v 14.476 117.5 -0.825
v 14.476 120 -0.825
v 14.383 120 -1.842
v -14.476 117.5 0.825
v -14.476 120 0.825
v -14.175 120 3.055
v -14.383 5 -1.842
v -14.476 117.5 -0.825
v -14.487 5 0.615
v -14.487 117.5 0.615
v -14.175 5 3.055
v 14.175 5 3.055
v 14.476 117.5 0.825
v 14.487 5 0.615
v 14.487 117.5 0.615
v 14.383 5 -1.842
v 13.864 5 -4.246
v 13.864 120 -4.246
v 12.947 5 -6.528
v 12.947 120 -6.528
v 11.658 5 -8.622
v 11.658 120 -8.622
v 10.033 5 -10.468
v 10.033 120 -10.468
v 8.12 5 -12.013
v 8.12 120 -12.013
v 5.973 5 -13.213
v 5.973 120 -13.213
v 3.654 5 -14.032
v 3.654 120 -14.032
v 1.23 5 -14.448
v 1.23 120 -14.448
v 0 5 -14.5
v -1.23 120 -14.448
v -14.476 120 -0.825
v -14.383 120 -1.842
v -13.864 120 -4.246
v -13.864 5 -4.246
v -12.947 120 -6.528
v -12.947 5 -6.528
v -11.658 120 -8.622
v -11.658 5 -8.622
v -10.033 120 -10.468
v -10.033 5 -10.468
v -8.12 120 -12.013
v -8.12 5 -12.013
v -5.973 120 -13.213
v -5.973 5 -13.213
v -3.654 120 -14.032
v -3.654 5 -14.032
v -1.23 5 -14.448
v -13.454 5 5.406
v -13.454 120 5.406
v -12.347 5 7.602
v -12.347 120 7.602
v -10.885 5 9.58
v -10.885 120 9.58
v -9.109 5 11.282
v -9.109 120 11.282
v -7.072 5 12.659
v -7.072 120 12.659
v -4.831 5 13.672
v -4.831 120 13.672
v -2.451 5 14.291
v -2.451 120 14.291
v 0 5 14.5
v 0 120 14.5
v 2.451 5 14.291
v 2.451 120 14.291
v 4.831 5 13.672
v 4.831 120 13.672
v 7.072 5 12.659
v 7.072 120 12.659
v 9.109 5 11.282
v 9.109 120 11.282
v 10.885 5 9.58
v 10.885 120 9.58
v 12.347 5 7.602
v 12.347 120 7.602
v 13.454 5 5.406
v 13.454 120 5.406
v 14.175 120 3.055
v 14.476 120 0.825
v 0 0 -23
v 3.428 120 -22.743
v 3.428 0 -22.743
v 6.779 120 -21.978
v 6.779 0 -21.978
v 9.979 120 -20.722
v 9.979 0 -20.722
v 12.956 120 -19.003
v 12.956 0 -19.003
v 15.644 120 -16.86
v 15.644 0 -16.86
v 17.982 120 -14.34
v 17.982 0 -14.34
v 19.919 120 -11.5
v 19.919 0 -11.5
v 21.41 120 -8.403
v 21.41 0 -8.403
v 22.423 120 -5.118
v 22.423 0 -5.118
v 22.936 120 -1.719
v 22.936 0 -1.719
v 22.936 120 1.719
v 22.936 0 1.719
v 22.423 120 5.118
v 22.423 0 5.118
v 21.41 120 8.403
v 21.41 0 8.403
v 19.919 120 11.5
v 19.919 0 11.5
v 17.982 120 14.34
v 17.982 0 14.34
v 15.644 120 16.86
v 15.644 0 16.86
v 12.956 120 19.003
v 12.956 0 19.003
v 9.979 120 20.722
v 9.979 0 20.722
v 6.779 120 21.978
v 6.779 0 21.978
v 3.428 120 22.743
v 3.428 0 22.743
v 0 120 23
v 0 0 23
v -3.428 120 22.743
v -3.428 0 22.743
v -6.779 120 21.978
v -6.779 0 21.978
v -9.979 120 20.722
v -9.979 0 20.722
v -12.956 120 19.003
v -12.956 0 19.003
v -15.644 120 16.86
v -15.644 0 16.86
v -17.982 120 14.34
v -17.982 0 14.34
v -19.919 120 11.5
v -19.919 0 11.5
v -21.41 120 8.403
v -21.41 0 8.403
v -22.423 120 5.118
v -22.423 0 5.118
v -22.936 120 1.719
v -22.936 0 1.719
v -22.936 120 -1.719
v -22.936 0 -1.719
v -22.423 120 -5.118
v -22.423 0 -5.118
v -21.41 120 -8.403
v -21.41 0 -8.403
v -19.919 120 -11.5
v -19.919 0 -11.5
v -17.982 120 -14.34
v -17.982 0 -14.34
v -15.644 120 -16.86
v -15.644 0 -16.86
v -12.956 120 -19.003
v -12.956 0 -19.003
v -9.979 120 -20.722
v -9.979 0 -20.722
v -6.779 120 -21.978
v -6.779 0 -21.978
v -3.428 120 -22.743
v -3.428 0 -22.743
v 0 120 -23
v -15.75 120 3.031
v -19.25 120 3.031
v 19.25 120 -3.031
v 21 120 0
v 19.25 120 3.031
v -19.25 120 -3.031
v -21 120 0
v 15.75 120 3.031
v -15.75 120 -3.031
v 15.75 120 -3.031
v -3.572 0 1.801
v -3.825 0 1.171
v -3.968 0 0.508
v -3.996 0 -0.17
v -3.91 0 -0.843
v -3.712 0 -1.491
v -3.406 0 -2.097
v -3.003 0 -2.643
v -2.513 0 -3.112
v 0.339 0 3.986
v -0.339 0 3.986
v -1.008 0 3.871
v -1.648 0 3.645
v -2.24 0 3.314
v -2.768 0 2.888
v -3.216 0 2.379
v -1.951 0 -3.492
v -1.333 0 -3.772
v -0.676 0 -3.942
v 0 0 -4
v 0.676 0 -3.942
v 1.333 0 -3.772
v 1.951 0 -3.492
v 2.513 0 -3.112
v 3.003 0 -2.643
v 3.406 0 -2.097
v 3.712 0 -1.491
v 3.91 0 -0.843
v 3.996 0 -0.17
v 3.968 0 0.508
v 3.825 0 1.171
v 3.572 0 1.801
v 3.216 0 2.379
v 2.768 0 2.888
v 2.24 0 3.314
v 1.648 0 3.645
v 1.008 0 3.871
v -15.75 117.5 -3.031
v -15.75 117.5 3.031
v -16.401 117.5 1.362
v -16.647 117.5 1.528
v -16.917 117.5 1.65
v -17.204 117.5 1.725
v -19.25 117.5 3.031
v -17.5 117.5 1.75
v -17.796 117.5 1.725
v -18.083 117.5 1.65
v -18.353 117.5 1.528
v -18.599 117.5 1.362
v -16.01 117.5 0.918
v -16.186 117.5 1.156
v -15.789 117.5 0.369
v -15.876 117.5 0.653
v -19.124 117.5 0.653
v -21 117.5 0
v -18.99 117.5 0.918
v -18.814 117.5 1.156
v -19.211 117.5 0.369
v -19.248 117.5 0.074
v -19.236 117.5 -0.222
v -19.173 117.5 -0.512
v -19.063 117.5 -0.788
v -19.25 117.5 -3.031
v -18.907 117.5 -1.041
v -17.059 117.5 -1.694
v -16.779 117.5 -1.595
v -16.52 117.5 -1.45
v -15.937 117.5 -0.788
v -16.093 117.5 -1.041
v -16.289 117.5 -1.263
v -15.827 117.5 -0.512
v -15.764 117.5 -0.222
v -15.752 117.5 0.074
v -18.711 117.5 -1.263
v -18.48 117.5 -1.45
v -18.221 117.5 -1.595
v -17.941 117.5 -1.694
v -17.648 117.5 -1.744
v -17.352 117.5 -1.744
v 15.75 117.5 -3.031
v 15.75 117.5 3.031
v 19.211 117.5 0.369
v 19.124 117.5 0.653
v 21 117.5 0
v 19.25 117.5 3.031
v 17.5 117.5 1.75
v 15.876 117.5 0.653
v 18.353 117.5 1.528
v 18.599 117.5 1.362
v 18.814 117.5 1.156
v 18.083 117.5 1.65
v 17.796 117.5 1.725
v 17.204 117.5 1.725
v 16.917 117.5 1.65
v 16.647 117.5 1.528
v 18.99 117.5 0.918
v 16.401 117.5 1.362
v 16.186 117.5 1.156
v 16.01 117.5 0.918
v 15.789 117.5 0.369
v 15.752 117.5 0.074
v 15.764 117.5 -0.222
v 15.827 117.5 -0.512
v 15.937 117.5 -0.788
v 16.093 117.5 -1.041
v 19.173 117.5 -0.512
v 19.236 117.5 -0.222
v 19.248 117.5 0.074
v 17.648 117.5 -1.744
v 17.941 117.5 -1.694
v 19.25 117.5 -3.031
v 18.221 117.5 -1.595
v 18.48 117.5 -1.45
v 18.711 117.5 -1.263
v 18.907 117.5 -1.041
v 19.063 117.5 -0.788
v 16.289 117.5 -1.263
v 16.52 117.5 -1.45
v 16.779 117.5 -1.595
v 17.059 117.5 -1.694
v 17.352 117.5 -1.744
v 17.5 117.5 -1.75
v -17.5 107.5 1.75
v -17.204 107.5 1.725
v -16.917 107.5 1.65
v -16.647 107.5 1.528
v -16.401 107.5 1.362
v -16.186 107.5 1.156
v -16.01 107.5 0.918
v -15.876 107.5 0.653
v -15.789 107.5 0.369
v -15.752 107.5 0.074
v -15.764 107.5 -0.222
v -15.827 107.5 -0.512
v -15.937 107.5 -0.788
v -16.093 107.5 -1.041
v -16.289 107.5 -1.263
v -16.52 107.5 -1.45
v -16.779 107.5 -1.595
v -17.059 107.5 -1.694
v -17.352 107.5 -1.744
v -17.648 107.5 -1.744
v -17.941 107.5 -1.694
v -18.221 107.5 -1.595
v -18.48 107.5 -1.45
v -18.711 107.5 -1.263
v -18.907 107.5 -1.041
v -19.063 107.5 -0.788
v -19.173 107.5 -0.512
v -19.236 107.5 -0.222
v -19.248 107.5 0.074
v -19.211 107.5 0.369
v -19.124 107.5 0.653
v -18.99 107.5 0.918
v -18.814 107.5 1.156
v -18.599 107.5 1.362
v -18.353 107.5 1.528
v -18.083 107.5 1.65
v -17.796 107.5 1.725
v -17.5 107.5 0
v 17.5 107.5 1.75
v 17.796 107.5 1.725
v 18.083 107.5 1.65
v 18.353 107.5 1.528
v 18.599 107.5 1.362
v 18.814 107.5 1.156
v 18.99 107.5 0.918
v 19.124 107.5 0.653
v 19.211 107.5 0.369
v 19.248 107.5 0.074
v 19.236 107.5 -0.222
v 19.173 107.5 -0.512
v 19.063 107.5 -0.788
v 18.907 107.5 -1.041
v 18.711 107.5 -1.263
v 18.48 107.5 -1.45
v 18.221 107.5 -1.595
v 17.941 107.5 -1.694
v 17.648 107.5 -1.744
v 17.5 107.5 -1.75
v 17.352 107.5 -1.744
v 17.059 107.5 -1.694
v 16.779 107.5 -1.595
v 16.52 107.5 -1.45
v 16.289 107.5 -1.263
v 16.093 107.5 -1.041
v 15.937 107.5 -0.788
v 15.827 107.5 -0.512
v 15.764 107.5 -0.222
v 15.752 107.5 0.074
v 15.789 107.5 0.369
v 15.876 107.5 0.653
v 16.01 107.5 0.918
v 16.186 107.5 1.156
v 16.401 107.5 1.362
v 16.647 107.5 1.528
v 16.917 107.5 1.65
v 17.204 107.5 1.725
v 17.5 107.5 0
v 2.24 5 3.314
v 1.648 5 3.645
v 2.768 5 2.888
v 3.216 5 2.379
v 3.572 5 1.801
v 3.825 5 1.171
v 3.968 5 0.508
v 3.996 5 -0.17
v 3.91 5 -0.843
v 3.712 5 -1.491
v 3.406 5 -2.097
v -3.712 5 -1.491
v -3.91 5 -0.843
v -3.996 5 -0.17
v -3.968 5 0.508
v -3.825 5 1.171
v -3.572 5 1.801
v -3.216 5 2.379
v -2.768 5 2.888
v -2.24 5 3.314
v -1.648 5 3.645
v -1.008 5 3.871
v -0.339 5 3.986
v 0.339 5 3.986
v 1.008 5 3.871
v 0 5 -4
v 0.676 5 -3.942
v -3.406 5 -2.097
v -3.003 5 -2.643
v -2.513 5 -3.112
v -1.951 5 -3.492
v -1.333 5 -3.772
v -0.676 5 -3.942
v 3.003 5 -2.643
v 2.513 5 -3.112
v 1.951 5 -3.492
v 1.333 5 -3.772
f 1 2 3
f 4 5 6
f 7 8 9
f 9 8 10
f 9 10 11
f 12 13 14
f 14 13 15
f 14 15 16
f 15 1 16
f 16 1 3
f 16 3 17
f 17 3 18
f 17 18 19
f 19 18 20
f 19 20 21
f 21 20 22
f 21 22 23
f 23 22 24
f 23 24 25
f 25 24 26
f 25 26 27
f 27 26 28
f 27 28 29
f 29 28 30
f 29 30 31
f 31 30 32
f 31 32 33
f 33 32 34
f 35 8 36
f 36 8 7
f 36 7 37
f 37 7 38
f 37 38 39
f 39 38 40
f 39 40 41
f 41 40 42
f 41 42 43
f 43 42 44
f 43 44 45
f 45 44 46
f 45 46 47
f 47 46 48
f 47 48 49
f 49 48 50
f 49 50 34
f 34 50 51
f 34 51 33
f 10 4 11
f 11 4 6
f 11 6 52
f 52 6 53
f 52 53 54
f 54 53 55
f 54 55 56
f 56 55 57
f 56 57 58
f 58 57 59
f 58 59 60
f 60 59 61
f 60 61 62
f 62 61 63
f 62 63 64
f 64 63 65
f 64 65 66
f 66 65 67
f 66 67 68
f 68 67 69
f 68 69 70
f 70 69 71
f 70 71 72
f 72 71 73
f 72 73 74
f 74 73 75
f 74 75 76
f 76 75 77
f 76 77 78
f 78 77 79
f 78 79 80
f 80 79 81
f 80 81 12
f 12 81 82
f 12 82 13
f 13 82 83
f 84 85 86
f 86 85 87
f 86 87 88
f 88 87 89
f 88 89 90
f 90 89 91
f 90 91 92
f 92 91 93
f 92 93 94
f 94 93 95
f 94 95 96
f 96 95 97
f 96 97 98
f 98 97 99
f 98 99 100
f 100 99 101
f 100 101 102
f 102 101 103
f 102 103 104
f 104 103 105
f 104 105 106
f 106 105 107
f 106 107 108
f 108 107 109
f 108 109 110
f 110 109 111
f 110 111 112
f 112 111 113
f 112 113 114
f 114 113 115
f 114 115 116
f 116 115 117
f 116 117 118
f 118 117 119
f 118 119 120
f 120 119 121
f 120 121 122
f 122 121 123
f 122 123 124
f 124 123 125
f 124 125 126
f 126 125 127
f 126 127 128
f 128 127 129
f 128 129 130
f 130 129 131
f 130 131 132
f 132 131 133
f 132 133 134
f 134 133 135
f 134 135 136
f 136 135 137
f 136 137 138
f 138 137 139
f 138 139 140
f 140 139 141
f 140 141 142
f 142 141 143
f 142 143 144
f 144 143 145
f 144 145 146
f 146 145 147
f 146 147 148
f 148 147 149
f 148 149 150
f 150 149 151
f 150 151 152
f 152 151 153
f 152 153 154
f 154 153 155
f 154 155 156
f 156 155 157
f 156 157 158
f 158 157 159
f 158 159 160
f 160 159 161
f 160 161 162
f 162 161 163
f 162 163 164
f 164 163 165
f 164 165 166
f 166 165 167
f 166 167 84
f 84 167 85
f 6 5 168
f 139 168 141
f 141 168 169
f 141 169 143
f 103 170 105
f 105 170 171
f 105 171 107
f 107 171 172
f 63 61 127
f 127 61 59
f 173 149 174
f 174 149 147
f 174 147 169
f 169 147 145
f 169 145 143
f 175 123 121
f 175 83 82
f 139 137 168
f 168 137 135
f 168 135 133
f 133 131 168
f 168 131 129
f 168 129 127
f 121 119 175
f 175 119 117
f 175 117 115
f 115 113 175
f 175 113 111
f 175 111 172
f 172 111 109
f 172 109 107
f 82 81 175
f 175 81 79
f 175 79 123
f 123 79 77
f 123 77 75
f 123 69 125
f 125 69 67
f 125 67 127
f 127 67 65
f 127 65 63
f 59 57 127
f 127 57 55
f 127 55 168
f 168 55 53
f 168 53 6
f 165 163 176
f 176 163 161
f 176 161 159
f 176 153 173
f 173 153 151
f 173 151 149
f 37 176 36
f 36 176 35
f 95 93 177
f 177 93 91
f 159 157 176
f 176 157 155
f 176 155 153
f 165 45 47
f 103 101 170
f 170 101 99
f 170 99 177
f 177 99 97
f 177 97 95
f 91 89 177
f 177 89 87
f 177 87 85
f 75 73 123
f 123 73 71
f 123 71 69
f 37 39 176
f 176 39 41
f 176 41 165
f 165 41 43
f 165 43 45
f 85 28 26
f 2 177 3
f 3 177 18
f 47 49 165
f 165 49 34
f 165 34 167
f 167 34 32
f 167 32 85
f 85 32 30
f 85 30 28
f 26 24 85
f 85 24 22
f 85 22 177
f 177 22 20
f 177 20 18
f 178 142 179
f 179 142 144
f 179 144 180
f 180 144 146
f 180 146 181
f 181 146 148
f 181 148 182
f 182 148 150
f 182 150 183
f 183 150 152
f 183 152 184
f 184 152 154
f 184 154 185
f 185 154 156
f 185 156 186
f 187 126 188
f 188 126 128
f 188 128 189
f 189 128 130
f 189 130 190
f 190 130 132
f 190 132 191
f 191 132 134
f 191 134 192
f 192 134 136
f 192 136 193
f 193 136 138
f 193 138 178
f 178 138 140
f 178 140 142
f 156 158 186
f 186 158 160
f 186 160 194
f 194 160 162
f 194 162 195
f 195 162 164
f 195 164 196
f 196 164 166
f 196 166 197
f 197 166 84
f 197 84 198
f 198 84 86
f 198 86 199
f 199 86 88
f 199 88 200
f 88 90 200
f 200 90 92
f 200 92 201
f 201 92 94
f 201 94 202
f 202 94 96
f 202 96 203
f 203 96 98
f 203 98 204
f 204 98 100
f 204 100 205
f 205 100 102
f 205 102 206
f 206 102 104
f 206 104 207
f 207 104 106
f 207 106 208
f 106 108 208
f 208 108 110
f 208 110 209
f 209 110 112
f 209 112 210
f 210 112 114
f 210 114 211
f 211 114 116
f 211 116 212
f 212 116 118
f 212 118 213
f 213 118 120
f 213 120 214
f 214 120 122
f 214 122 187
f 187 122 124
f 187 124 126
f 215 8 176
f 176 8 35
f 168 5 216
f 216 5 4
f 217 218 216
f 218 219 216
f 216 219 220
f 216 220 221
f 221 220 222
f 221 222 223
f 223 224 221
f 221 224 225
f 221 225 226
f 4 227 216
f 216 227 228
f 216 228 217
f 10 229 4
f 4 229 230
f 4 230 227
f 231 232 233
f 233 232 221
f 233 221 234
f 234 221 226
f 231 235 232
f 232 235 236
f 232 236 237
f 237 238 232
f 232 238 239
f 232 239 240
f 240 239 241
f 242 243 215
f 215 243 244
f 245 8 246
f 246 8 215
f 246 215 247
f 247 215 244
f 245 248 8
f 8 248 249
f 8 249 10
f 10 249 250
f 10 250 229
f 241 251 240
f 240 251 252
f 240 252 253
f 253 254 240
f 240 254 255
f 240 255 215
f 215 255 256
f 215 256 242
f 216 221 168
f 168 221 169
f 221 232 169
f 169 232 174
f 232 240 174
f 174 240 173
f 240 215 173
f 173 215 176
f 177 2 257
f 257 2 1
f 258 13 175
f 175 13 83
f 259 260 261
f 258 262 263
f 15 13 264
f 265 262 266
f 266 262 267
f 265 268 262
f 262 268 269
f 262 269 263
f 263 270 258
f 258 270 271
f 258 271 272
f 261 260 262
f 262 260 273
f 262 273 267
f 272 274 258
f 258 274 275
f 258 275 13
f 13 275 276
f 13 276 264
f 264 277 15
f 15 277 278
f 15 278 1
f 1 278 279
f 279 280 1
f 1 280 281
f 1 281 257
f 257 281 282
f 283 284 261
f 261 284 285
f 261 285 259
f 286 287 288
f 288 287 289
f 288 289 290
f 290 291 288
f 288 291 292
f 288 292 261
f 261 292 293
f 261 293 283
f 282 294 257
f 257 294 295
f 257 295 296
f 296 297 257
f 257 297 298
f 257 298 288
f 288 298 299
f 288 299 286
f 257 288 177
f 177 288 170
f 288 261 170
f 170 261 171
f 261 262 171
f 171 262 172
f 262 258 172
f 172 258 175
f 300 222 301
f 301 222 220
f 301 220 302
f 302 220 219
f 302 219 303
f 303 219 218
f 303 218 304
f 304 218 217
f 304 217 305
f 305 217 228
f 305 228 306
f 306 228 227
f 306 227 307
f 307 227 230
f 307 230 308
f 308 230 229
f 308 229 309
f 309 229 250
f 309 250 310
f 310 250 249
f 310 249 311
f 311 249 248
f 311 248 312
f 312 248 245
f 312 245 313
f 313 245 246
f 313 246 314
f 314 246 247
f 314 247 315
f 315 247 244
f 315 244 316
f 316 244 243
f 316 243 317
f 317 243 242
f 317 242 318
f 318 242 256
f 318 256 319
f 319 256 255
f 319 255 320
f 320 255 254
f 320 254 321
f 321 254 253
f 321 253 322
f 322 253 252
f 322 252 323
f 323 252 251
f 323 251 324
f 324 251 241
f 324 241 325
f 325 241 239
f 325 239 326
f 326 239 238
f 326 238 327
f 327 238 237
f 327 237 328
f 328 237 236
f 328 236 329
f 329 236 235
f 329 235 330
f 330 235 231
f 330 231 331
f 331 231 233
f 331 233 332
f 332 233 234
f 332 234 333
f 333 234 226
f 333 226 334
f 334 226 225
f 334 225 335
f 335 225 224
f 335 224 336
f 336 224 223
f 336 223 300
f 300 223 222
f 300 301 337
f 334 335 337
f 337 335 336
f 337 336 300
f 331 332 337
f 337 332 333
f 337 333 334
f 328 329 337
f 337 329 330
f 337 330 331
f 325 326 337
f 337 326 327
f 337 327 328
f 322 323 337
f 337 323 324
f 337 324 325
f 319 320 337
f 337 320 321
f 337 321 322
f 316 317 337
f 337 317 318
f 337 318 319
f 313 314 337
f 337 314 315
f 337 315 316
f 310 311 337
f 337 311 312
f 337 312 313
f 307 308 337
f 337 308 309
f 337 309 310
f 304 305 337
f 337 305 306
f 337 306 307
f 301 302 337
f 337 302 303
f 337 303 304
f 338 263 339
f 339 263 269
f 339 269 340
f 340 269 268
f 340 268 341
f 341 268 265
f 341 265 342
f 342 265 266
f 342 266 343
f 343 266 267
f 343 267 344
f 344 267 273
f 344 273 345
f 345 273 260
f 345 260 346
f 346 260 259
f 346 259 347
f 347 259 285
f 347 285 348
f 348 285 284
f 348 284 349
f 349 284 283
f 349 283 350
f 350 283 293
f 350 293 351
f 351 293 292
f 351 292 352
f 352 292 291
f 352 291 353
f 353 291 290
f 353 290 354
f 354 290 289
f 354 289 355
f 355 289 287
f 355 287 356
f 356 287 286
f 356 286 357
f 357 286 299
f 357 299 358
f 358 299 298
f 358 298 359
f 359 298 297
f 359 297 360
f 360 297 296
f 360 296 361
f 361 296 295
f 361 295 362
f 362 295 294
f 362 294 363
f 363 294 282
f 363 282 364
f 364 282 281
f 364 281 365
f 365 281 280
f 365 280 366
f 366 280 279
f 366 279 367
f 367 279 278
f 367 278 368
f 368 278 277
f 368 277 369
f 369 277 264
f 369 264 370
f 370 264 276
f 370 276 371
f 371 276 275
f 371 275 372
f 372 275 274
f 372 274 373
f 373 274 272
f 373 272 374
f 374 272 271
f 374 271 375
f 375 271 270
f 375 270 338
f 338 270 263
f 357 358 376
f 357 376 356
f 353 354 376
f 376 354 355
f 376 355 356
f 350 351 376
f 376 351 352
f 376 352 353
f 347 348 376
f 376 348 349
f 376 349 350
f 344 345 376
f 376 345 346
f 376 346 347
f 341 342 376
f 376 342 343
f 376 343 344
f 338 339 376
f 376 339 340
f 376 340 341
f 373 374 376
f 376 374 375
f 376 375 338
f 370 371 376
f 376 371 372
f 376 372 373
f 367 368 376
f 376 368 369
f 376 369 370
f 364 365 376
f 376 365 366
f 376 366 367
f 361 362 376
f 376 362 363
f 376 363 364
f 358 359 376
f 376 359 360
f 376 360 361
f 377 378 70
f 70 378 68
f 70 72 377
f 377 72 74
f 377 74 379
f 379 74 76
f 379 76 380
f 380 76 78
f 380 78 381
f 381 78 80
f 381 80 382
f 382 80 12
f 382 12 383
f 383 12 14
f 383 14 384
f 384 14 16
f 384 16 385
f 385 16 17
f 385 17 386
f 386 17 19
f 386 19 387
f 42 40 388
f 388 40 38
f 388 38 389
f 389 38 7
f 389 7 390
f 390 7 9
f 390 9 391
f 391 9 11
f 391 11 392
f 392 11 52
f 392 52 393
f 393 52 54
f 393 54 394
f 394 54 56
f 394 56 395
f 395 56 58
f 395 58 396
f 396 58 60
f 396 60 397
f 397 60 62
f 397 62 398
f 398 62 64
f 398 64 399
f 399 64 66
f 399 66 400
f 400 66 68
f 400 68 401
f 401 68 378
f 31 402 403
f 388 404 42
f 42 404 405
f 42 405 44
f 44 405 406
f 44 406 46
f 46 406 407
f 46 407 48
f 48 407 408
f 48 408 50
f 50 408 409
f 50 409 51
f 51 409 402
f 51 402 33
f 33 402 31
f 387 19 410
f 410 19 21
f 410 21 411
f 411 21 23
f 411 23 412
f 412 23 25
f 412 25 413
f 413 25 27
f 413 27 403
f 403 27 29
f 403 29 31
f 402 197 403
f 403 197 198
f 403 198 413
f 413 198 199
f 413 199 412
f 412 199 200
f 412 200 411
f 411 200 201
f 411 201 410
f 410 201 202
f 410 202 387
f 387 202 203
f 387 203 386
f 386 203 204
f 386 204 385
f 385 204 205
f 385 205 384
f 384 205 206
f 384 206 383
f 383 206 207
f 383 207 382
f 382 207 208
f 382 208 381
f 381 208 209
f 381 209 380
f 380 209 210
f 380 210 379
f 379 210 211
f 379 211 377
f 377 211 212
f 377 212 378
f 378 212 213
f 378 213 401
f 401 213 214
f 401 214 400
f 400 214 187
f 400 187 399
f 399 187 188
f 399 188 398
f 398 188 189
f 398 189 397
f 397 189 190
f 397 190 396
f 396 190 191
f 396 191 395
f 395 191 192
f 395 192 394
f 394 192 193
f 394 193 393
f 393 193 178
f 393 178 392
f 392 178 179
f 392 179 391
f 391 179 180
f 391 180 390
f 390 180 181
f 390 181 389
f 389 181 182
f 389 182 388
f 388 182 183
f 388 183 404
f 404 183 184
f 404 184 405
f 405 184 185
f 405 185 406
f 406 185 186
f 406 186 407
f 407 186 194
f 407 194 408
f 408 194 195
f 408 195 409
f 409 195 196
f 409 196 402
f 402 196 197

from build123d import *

# Parameters (mm, degrees)
SKETCH1_R           = 23
BOSS_EXTRUDE1_DEPTH = 120
SKETCH2_R           = 14.5
CUT_EXTRUDE1_DEPTH  = 120
CUT_EXTRUDE2_DEPTH  = 2.5
SKETCH5_R           = 1.75
CUT_EXTRUDE3_DEPTH  = 10
BOSS_EXTRUDE2_START = -5
SKETCH6_R           = 14.5
BOSS_EXTRUDE2_DEPTH = 5
SKETCH7_R           = 4
CUT_EXTRUDE4_DEPTH  = 5


with BuildPart() as part:
    # Sketch1 → Boss-Extrude1 (new body)
    with BuildSketch(Plane(origin=(0, 0, 0), x_dir=(1, 0, 0), z_dir=(0, 1, 0))):
        Circle(SKETCH1_R)
    extrude(amount=BOSS_EXTRUDE1_DEPTH)

    # Sketch2 → Cut-Extrude1 (cut)
    with BuildSketch(Plane(origin=(0, 120, 0), x_dir=(1, 0, 0), z_dir=(0, 1, 0))):
        Circle(SKETCH2_R)
    extrude(amount=-CUT_EXTRUDE1_DEPTH, mode=Mode.SUBTRACT)

    # Sketch4 → Cut-Extrude2 (cut)
    with BuildSketch(Plane(origin=(0, 120, 0), x_dir=(1, 0, 0), z_dir=(0, 1, 0))):
        Polygon((-14, 0), (-15.75, -3.031088913), (-19.25, -3.031088913), (-21, 0), (-19.25, 3.031088913), (-15.75, 3.031088913), align=None)
        Polygon((19.25, 3.031088913), (15.75, 3.031088913), (14, 0), (15.75, -3.031088913), (19.25, -3.031088913), (21, 0), align=None)
    extrude(amount=-CUT_EXTRUDE2_DEPTH, mode=Mode.SUBTRACT)

    # Sketch5 → Cut-Extrude3 (cut)
    with BuildSketch(Plane(origin=(0, 117.5, 0), x_dir=(1, 0, 0), z_dir=(0, 1, 0))):
        with Locations((-17.5, 0)):
            Circle(SKETCH5_R)
        with Locations((17.5, 0)):
            Circle(SKETCH5_R)
    extrude(amount=-CUT_EXTRUDE3_DEPTH, mode=Mode.SUBTRACT)

    # Sketch6 → Boss-Extrude2 (add)
    with BuildSketch(Plane(origin=(0, 0, 0), x_dir=(-1, 0, 0), z_dir=(0, -1, 0)).offset(BOSS_EXTRUDE2_START)):
        Circle(SKETCH6_R)
    extrude(amount=BOSS_EXTRUDE2_DEPTH)

    # Sketch7 → Cut-Extrude4 (cut)
    with BuildSketch(Plane.XZ):
        Circle(SKETCH7_R)
    extrude(amount=-CUT_EXTRUDE4_DEPTH, mode=Mode.SUBTRACT)


solid = part.part
